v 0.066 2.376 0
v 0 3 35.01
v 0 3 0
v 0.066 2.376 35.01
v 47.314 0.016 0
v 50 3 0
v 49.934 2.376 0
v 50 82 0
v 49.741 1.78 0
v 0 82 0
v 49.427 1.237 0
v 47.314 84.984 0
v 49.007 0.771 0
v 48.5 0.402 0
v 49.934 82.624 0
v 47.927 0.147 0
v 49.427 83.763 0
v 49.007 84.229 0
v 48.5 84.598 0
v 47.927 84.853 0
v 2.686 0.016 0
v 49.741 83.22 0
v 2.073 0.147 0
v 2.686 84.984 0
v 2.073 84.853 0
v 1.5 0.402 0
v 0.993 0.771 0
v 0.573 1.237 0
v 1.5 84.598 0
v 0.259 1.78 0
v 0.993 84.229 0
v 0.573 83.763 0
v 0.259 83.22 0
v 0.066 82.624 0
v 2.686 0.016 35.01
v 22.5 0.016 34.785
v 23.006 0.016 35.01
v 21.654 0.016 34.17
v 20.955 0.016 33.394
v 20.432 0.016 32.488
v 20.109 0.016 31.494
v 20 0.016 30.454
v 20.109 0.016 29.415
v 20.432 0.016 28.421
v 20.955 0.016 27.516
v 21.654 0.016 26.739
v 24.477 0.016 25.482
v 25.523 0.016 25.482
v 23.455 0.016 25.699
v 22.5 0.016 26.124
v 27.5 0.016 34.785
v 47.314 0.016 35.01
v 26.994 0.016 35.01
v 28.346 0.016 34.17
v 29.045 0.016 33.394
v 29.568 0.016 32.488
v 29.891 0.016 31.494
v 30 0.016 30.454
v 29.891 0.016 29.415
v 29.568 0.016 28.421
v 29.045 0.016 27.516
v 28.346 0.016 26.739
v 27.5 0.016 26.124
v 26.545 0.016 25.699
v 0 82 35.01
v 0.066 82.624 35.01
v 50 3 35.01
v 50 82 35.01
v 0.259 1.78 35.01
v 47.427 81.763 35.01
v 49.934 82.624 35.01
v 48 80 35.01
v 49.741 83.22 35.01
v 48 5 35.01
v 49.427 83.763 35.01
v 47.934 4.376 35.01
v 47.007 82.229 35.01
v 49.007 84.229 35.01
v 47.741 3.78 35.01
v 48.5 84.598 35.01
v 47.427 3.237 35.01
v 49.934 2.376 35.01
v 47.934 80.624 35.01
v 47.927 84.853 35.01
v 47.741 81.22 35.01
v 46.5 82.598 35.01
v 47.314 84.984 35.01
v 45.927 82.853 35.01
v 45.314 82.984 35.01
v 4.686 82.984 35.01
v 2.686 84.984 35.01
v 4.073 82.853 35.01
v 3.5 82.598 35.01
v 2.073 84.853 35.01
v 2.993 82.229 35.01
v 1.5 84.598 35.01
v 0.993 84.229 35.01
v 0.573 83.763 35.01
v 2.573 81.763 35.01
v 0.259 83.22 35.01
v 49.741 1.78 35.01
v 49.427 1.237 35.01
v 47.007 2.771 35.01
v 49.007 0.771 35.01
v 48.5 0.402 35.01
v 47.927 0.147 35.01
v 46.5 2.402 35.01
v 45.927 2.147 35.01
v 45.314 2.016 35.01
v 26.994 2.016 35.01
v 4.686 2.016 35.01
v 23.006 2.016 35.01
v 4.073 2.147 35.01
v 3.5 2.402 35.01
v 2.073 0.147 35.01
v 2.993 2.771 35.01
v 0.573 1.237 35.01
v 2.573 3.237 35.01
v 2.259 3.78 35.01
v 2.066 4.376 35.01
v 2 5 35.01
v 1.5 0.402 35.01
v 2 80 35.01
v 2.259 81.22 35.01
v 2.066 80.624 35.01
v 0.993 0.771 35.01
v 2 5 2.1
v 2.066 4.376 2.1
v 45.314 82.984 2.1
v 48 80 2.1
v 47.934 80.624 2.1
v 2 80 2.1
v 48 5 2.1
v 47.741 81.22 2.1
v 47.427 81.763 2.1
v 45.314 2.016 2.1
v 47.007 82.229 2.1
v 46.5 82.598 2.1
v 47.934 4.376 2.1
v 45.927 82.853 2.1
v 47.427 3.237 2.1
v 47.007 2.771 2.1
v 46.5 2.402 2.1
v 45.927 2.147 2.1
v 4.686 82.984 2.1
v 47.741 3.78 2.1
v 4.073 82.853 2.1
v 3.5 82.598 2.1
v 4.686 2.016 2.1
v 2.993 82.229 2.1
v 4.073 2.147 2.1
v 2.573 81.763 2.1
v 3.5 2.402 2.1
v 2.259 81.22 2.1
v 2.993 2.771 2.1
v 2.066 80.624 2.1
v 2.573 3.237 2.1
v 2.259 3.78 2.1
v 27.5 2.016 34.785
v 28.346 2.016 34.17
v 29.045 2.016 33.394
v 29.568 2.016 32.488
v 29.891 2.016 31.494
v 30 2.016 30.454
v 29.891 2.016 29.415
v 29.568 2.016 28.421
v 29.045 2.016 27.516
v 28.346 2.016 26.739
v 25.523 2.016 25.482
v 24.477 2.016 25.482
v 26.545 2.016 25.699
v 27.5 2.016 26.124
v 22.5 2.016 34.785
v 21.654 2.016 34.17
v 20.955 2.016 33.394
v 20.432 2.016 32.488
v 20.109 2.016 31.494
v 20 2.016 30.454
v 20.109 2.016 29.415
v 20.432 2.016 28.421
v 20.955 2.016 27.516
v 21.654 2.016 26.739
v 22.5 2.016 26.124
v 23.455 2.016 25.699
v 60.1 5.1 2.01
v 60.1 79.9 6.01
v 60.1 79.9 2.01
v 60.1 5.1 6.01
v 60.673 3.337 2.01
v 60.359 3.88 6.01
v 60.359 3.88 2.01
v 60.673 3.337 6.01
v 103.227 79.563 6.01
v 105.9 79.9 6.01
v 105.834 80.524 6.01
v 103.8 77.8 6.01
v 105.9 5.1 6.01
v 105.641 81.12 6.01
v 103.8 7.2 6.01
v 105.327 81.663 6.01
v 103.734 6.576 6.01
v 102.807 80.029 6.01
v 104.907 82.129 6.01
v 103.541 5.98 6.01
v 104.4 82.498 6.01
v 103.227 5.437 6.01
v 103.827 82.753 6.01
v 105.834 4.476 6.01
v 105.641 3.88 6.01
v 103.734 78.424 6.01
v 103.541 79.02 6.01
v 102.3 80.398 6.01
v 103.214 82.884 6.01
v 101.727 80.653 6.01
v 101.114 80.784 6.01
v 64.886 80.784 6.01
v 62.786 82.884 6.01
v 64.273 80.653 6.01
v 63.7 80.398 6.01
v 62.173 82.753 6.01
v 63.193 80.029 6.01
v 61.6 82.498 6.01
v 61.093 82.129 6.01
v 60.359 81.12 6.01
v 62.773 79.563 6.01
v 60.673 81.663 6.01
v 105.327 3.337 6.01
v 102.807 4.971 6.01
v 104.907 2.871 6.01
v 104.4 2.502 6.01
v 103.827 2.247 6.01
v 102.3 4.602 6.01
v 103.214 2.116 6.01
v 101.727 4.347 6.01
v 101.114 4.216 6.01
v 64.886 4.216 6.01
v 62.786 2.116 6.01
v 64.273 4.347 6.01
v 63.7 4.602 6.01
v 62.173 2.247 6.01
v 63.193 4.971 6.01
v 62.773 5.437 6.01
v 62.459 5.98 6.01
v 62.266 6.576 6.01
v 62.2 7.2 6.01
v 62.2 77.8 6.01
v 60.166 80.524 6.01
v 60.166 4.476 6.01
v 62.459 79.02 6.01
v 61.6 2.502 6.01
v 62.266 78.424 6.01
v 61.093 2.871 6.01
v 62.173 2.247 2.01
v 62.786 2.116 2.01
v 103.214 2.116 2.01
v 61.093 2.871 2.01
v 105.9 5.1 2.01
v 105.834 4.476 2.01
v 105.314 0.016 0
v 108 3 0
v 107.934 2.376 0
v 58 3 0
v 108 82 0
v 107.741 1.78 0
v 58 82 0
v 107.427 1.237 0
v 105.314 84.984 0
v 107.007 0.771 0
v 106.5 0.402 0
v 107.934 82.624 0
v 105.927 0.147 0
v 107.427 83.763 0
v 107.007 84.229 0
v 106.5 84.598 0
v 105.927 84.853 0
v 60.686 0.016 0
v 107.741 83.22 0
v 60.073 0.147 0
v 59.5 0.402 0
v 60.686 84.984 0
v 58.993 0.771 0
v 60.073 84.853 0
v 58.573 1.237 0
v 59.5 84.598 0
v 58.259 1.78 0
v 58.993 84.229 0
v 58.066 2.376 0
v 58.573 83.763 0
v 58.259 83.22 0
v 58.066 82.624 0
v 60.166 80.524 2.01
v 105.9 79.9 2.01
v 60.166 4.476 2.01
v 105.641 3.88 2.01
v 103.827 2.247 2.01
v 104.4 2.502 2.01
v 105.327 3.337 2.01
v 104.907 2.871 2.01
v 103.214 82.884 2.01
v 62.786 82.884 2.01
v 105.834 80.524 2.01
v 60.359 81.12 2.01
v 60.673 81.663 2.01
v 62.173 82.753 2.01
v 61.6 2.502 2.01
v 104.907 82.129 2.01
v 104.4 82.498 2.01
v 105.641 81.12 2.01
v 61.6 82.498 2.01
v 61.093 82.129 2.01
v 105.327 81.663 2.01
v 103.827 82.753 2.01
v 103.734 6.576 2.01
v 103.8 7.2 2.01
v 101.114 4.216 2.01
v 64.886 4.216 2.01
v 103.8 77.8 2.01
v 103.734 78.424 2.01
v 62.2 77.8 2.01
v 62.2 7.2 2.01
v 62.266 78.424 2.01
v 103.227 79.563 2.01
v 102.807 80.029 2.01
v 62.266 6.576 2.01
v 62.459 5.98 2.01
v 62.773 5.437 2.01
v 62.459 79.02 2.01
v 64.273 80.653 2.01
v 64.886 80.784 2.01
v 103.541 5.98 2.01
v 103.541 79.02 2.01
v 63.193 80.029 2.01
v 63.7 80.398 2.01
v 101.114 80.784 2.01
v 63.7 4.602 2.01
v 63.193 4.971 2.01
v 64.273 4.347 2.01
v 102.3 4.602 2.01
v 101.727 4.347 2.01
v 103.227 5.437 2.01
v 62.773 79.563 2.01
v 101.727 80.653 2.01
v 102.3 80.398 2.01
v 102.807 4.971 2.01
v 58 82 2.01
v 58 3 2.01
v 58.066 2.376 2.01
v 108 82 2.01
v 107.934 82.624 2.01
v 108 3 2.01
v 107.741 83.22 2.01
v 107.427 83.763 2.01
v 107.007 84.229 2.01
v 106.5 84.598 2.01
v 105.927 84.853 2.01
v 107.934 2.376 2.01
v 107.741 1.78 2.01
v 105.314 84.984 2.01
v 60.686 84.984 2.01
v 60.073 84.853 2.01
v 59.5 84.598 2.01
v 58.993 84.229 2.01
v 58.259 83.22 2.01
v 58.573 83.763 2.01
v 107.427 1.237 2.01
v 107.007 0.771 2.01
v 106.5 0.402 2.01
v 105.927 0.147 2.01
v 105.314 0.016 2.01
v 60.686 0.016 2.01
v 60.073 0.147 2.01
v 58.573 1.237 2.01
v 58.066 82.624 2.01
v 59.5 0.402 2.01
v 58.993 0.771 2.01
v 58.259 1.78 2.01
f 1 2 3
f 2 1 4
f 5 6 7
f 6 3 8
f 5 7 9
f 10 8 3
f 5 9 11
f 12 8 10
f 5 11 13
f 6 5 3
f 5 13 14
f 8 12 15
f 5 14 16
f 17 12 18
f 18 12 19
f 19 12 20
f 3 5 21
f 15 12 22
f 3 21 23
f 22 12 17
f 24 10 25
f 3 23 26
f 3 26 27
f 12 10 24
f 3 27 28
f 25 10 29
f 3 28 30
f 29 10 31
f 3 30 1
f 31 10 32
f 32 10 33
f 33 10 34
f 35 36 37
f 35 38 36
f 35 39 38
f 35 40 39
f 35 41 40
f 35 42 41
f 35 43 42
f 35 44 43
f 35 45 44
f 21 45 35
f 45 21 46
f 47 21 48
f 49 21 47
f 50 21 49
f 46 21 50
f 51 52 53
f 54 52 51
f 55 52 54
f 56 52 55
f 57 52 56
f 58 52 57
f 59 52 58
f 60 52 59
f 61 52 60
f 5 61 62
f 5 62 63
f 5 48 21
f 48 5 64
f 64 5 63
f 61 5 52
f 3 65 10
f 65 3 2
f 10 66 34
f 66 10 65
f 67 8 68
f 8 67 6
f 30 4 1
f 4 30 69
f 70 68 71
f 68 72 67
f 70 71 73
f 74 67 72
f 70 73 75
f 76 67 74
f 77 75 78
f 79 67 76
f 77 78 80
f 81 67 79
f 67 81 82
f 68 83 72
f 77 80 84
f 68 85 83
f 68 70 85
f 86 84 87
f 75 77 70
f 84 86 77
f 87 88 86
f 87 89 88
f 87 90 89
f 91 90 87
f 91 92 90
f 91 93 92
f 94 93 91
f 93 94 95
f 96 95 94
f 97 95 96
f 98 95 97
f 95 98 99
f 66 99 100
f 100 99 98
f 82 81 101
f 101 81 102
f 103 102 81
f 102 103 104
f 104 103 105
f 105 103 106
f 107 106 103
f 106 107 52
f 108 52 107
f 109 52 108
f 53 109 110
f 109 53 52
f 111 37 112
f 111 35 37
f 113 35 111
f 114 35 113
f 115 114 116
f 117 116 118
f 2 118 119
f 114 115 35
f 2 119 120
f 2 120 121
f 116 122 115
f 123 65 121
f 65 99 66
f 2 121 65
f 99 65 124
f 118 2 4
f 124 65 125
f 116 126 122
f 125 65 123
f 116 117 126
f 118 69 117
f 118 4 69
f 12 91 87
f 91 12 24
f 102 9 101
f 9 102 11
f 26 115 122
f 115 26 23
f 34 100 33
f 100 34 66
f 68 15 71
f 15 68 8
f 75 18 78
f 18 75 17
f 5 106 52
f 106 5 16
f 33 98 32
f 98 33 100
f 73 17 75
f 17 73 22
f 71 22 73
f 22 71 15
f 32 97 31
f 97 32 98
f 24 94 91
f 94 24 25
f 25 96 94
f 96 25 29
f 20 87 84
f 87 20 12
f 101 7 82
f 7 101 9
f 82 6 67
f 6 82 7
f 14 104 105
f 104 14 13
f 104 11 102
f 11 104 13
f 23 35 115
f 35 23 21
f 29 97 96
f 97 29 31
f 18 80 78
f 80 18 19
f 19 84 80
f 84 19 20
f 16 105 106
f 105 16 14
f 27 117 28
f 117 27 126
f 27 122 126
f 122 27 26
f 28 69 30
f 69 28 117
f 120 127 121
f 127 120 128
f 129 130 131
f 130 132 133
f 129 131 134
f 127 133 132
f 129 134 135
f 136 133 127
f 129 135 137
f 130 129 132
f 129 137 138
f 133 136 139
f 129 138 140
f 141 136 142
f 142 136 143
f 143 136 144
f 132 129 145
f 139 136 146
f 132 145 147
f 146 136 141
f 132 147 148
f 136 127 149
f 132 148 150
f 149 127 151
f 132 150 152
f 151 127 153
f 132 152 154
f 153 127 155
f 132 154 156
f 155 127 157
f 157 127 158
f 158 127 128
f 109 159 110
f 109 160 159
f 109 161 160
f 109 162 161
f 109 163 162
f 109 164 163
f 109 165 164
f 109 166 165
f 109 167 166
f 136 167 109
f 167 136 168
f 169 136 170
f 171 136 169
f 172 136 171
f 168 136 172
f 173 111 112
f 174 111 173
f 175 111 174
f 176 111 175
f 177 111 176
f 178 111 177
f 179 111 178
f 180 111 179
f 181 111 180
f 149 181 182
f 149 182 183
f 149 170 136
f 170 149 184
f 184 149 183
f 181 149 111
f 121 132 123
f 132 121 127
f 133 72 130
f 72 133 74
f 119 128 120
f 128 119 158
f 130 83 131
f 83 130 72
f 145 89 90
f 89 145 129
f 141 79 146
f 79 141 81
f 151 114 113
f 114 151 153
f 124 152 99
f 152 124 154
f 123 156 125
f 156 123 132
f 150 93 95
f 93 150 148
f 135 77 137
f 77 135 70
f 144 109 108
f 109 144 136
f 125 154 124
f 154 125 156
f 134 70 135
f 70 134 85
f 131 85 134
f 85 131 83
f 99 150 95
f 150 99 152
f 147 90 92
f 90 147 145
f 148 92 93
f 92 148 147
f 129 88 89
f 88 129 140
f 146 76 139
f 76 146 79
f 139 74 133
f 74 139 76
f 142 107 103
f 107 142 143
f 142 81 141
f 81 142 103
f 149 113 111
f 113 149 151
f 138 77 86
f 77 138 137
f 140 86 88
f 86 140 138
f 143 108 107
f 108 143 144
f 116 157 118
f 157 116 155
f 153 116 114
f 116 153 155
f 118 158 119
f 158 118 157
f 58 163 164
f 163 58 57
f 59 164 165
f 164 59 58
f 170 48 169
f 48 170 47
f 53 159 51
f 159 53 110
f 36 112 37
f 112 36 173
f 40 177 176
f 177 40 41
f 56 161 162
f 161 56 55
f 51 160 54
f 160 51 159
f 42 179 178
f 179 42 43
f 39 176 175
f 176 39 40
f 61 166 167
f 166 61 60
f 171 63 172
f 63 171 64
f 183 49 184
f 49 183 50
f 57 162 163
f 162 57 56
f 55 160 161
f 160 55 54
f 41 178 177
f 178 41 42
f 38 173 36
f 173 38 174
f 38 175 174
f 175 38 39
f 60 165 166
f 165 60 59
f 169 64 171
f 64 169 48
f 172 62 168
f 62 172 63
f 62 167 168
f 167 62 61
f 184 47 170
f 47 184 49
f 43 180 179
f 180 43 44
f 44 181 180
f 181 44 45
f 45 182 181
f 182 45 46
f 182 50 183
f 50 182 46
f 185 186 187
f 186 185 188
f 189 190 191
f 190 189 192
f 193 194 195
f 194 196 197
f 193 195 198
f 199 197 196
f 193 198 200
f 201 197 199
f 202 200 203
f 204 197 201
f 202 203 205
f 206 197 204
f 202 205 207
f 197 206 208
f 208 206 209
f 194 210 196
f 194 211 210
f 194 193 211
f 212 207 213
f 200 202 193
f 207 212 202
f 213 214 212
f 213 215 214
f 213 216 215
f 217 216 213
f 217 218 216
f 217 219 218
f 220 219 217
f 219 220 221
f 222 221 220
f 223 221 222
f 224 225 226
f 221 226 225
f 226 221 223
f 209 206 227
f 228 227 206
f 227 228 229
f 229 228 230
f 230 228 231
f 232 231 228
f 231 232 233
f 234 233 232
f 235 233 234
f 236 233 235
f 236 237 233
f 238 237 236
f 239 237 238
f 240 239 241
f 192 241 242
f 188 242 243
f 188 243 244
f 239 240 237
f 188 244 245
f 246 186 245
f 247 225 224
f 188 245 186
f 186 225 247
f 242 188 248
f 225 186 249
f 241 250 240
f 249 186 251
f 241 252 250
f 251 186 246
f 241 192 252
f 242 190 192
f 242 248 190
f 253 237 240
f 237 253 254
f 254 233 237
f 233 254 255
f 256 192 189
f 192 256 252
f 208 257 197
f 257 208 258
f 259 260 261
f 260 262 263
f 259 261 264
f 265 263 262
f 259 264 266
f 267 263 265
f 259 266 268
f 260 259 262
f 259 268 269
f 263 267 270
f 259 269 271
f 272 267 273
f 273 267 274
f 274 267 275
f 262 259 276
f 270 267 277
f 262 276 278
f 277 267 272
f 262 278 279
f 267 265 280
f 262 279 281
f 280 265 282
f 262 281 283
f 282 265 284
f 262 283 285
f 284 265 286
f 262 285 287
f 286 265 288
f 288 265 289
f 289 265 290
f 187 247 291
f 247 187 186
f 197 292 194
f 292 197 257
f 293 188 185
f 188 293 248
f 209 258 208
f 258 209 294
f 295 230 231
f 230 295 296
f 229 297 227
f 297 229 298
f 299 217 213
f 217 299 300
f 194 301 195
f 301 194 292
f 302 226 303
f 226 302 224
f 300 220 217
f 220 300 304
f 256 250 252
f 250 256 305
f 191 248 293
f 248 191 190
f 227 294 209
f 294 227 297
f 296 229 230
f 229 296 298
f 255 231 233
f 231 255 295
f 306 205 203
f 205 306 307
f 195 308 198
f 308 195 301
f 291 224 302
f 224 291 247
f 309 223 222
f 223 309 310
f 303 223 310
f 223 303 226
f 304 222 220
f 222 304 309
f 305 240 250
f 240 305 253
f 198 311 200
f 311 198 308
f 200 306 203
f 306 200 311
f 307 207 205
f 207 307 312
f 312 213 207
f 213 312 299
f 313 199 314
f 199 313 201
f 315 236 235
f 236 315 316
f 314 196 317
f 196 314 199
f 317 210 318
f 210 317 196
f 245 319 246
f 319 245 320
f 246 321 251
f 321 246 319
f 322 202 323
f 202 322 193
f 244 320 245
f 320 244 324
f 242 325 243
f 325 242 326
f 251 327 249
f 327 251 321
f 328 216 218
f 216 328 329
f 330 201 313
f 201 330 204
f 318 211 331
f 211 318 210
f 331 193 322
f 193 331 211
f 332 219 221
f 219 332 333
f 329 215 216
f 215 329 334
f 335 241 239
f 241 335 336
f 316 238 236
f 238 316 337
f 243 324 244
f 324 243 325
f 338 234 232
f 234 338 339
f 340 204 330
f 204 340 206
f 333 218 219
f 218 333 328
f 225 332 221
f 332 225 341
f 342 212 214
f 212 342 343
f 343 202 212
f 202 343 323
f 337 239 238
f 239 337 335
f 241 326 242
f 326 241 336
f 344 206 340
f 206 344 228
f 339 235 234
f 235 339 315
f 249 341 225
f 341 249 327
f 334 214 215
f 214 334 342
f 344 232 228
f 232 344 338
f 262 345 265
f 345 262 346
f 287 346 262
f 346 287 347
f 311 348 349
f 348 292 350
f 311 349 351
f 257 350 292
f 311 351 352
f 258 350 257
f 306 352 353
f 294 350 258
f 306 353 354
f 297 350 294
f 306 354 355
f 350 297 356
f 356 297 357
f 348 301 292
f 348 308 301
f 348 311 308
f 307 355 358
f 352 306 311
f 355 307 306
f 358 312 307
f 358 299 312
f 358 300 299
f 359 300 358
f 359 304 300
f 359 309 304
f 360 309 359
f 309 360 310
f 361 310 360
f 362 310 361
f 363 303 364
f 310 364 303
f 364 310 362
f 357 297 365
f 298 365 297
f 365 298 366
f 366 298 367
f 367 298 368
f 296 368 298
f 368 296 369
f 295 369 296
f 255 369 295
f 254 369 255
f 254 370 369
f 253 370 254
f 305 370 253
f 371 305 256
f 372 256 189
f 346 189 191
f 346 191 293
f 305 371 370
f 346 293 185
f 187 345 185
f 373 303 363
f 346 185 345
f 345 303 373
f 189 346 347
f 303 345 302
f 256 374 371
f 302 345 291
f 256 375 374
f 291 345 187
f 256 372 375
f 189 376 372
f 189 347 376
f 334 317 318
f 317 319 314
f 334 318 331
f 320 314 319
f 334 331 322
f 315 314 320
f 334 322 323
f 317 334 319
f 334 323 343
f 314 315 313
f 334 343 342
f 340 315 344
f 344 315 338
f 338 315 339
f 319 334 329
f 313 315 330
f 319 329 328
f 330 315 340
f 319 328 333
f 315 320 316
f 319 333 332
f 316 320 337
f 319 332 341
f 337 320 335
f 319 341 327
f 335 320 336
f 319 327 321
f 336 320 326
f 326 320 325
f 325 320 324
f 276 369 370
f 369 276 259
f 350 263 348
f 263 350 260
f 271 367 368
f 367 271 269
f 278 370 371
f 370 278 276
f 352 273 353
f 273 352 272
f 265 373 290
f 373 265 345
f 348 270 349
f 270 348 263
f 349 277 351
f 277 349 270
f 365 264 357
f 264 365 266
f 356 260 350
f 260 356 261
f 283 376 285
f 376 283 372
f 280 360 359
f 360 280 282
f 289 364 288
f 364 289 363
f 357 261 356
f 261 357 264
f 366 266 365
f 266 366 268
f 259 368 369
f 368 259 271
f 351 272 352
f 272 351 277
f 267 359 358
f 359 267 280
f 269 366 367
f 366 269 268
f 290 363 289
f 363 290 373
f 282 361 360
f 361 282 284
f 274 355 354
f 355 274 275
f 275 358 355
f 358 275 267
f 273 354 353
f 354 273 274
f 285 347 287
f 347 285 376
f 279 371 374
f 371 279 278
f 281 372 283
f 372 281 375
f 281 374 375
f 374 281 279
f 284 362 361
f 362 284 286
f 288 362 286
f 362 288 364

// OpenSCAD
$fs=0.2;

length = 85; //4.1 * 25.4;
width= 50; //3.1 * 25.4;
height = 35; //1.6 * 25.4;
cornerRadius = 3;
slop = 0.1;
thick = 2.0;
wireRadius = 5;

lidSlop = 0.2; // the rim on the lid will be this much smaller than the box

centerWidth = width/2-cornerRadius;

translate([cornerRadius, cornerRadius, 0]){
  difference() {
    roundedBox(length, width, height, cornerRadius);
    translate([thick,thick,thick+slop])
      roundedBox(length-thick*2, width-thick*2, height-thick+slop, cornerRadius);

    // Hole for wires
    translate([centerWidth, -thick/3, height-(wireRadius/1.1)])
      rotate([90,0,0])
        cylinder(r=wireRadius, h=thick*2);

  }
}

// Make the lid
lidThick = thick + lidSlop/2;
translate([width*2+5, cornerRadius, 0]){
  mirror([1,0,0]) {
    roundedBox(length, width, thick, cornerRadius);
    difference() {
      translate([lidThick, lidThick, 0])
        roundedBox(length-lidThick*2, width-lidThick*2, thick+4, cornerRadius);
      translate([lidThick*2, lidThick*2, 0+slop])
        roundedBox(length-lidThick*4, width-lidThick*4, thick+4+slop, cornerRadius);    
    }
  }
}


module roundedBox(length, width, height, radius){
  dRadius = 2*radius;

  //cube bottom right
  //translate([width-dRadius,-radius,0])
  //  cube(size=[radius,radius,height+0.01]);

  //cube top left
  //translate([-radius,length-dRadius,0])
  //  cube(size=[radius,radius,height+0.01]);

  //base rounded shape
  minkowski() {
    cube(size=[width-dRadius,length-dRadius, height]);
    cylinder(r=radius, h=0.01);
  } 
}
